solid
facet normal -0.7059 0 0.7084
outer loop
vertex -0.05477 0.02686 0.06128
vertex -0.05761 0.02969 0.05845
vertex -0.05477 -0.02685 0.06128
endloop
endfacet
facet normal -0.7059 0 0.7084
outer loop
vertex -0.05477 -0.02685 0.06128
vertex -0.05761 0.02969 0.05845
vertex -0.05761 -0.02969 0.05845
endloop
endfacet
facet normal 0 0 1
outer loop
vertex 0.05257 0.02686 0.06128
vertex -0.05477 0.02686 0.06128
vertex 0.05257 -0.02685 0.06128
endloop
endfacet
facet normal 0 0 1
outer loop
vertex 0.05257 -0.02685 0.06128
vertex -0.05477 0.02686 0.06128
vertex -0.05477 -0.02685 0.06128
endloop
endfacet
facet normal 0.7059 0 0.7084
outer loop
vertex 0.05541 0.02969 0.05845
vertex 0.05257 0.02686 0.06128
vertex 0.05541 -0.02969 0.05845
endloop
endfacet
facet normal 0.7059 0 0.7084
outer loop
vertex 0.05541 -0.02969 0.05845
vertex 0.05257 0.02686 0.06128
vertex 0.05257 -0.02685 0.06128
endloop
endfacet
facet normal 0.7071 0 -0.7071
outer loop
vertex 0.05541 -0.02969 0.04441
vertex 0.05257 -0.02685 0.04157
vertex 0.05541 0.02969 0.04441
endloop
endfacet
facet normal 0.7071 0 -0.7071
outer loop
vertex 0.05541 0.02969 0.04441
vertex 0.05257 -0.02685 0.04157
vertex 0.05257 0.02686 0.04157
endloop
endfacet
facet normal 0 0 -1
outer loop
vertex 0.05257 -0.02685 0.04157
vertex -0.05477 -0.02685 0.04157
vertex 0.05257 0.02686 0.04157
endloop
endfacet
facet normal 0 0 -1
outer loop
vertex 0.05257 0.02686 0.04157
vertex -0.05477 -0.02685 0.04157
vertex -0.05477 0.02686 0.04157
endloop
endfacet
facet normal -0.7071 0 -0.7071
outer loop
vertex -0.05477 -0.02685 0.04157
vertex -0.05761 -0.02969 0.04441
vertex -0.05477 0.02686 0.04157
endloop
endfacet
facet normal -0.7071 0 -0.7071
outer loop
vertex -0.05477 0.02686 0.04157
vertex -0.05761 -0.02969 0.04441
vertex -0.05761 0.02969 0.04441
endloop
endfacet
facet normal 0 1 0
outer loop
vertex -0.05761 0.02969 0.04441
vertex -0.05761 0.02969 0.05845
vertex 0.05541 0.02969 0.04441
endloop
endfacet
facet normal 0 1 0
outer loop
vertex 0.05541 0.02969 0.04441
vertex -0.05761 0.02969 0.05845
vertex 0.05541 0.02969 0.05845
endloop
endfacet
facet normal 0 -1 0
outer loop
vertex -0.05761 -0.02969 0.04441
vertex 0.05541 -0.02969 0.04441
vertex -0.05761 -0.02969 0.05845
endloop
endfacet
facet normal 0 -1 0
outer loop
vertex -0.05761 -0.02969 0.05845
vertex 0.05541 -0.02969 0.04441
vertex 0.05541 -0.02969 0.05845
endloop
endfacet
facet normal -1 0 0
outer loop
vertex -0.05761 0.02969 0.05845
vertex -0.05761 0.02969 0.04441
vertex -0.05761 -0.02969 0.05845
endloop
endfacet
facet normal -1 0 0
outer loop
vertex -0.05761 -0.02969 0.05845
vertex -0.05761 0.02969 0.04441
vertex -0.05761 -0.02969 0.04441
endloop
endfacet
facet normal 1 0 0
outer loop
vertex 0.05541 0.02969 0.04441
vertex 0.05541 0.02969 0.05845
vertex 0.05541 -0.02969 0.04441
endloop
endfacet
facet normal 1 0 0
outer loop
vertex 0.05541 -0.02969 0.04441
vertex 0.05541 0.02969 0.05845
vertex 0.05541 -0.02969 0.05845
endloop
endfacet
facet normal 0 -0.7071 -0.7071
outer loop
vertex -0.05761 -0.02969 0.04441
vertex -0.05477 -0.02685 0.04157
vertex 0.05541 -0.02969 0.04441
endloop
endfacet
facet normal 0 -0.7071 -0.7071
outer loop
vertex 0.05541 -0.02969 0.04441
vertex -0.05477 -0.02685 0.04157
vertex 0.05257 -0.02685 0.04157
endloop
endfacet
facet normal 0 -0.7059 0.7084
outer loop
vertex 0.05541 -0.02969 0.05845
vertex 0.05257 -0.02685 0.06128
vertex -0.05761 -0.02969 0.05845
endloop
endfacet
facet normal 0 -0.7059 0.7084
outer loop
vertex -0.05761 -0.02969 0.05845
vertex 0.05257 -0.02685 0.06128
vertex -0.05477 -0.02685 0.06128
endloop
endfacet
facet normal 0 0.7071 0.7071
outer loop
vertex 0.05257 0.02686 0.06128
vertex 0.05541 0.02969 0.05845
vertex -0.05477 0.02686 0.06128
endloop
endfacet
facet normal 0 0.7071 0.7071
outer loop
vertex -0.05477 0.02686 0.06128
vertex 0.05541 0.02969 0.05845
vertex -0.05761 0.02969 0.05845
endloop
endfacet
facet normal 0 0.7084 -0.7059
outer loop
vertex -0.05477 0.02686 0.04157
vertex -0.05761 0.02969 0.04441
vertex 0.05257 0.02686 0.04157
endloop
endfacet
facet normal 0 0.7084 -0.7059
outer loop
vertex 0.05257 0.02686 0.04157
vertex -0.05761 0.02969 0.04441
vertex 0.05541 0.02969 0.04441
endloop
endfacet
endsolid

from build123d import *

# Parameters (mm, degrees)
BOSS_EXTRUDE2_DEPTH = 0.059386
CUT_EXTRUDE2_DEPTH  = 1.131952574


with BuildPart() as part:
    # Sketch6 → Boss-Extrude2 (new body)
    with BuildSketch(Plane(origin=(0, -0.029692013, 0), x_dir=(1, 0, 0), z_dir=(0, 1, 0))):
        Polygon((-0.05760873, -0.044406825), (-0.054770597, -0.041568568), (0.052574986, -0.041568568), (0.055413118, -0.044406577), (0.055413118, -0.058446429), (0.052574986, -0.061284671), (-0.054770597, -0.061284671), (-0.05760873, -0.058446647), align=None)
    extrude(amount=BOSS_EXTRUDE2_DEPTH)

    # Sketch10 → Cut-Extrude2 (cut, through all)
    with BuildSketch(Plane(origin=(-0.05760873, 0, 0), x_dir=(0, 0, -1), z_dir=(1, 0, 0))):
        Polygon((-0.061284671, 0.02685612), (-0.058446429, 0.029694371), (-0.061284671, 0.029694371), align=None)
        Polygon((-0.041568568, 0.02685612), (-0.044406577, 0.029694371), (-0.041568568, 0.029694371), align=None)
        Polygon((-0.058446429, -0.029692013), (-0.061284671, -0.026853766), (-0.061284671, -0.029692013), align=None)
        Polygon((-0.044406825, -0.029692013), (-0.041568568, -0.026853766), (-0.041568568, -0.029692013), align=None)
    extrude(amount=CUT_EXTRUDE2_DEPTH, mode=Mode.SUBTRACT)


solid = part.part
